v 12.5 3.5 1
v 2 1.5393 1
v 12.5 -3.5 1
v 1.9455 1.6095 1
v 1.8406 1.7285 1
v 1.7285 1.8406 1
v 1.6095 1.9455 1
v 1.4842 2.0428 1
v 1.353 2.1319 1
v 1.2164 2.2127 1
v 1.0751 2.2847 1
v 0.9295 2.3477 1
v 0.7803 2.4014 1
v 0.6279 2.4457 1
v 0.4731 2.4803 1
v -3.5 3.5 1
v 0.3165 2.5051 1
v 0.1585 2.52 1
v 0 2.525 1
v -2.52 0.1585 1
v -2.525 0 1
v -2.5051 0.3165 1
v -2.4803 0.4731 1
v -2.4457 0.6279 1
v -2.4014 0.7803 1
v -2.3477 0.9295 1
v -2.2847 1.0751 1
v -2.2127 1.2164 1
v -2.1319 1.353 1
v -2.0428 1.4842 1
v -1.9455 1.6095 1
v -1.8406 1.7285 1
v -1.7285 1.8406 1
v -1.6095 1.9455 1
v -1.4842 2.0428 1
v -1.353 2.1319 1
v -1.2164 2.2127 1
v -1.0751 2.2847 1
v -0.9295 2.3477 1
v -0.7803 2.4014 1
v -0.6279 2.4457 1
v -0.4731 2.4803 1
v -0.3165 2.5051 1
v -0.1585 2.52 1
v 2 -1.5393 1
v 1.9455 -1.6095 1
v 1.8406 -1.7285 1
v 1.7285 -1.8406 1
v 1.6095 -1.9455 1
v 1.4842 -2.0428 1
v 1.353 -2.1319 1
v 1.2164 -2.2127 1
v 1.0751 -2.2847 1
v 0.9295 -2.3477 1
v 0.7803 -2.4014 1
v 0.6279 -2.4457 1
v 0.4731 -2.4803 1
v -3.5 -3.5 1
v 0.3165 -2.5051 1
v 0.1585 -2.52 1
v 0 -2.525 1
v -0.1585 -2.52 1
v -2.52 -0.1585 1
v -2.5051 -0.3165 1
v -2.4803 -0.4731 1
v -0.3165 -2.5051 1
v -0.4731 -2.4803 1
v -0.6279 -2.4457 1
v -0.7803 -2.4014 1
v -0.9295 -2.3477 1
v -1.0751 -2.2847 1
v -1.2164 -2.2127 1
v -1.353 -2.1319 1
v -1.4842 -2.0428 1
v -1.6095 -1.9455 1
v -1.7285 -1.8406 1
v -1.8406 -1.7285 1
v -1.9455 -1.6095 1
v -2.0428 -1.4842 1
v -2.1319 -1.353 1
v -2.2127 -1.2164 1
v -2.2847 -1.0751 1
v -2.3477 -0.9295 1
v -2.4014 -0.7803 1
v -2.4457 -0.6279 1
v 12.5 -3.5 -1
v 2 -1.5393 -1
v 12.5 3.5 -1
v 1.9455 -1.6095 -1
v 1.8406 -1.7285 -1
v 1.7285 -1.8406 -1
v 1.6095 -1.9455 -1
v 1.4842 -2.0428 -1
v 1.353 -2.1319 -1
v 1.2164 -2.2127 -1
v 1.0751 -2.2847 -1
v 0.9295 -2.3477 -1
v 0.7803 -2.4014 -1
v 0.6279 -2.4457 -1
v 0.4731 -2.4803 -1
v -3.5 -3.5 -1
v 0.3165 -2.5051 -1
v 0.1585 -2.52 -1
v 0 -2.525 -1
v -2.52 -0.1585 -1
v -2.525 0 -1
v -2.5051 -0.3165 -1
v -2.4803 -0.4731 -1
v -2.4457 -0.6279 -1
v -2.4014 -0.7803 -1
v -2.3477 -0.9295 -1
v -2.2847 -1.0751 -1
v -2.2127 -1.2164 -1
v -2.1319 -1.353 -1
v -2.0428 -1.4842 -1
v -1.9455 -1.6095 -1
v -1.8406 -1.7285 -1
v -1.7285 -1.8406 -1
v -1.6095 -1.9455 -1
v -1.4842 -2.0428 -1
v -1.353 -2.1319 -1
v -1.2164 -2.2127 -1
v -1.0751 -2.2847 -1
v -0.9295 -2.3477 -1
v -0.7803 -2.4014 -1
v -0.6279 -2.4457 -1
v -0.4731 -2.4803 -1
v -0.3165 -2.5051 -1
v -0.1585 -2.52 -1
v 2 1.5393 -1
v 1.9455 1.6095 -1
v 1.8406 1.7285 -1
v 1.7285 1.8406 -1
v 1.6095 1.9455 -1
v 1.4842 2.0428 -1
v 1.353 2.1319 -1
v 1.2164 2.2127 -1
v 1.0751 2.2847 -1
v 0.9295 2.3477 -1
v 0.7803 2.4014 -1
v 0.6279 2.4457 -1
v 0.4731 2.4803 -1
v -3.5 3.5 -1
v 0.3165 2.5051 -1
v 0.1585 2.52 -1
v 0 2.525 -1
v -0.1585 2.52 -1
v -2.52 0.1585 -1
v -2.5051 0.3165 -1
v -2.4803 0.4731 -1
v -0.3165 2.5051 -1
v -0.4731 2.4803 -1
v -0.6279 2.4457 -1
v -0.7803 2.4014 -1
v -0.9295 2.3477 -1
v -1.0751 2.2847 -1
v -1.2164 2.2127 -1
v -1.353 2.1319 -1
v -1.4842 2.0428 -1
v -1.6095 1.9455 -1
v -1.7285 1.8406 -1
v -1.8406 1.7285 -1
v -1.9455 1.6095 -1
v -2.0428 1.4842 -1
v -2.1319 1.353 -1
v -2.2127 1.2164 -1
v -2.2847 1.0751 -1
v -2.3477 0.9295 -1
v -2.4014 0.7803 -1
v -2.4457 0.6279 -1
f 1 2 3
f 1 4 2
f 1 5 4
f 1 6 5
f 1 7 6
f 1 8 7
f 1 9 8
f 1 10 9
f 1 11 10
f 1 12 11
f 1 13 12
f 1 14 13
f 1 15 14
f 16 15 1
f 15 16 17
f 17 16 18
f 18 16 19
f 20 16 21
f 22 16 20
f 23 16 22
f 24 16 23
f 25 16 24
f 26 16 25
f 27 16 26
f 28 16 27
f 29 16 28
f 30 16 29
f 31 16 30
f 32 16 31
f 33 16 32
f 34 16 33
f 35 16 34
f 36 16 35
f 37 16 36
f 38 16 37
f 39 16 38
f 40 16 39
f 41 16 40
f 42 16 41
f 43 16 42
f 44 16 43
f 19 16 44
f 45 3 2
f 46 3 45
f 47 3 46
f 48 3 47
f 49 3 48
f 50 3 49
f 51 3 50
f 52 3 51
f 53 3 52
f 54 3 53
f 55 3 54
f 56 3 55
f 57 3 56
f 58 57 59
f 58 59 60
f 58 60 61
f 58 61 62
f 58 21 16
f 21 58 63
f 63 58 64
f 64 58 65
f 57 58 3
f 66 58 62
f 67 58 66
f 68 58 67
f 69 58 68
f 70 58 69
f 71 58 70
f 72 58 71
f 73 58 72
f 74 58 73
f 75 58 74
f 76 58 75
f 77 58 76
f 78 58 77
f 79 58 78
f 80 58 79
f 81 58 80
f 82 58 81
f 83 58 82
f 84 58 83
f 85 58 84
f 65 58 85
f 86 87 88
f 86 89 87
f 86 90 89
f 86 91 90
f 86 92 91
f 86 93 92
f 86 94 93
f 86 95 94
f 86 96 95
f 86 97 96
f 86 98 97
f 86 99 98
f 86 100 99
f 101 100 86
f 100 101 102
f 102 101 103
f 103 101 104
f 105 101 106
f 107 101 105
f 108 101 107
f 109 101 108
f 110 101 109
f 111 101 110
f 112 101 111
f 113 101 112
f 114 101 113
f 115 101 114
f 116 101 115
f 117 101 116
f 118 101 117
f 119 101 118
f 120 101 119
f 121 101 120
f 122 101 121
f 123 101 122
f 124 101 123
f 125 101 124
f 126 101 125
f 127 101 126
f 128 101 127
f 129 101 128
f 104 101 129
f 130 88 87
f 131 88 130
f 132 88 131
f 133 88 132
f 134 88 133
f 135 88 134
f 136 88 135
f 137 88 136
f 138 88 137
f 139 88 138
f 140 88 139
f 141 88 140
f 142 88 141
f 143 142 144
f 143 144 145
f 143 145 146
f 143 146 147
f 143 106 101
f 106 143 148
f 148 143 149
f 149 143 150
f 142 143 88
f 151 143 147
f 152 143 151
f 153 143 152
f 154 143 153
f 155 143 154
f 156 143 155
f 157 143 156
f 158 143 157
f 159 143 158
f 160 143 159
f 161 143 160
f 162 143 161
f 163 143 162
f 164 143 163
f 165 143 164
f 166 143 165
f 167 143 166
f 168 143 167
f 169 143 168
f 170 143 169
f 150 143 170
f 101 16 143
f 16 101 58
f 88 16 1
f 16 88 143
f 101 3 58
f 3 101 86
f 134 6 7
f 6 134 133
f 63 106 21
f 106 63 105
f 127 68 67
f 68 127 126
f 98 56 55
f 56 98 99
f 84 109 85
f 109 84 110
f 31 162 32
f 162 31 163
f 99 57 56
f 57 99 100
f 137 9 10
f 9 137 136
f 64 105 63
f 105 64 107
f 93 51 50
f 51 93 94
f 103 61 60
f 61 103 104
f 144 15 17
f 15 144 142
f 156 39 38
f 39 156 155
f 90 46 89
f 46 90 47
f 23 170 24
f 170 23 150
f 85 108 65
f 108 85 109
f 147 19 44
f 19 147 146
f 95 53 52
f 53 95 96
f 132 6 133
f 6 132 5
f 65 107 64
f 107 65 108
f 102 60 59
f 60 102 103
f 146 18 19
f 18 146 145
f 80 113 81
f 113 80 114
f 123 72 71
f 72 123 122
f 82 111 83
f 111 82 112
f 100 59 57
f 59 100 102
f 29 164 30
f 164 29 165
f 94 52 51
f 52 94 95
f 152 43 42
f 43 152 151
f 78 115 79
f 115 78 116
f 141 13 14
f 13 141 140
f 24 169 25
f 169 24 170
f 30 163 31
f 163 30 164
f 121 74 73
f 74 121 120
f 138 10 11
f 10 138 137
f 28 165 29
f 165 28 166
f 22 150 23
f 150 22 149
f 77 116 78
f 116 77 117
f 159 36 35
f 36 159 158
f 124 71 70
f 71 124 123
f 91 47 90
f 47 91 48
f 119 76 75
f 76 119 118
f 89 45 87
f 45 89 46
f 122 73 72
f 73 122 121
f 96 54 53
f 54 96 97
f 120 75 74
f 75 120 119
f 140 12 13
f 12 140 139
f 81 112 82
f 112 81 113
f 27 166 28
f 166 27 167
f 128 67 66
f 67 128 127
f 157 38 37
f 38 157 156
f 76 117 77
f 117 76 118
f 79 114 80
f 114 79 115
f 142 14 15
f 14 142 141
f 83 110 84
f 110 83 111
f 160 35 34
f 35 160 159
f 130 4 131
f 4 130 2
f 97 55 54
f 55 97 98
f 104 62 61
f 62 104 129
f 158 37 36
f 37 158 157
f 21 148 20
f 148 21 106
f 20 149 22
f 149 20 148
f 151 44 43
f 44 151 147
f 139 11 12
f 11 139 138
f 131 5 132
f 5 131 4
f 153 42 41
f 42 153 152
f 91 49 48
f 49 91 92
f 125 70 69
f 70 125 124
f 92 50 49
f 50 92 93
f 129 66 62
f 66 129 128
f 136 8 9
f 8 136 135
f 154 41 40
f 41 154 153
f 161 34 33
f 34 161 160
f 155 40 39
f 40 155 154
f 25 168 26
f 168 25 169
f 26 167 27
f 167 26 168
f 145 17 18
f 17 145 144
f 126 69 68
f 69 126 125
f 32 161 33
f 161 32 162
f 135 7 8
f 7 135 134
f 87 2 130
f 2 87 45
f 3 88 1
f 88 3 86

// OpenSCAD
clearance=0.05;

difference() {
    cube(size = [7,7,2], center=true);

    translate([0, 0, -5]) 
    linear_extrude(height = 10)
    circle(d = 5+clearance, $fn=100);
}

color("green")
translate([2.5,0,0]) 
cube(size = [1,5,2], center=true);

translate([5+5/2, 0, 0]) 
cube(size = [10,7,2], center=true);
